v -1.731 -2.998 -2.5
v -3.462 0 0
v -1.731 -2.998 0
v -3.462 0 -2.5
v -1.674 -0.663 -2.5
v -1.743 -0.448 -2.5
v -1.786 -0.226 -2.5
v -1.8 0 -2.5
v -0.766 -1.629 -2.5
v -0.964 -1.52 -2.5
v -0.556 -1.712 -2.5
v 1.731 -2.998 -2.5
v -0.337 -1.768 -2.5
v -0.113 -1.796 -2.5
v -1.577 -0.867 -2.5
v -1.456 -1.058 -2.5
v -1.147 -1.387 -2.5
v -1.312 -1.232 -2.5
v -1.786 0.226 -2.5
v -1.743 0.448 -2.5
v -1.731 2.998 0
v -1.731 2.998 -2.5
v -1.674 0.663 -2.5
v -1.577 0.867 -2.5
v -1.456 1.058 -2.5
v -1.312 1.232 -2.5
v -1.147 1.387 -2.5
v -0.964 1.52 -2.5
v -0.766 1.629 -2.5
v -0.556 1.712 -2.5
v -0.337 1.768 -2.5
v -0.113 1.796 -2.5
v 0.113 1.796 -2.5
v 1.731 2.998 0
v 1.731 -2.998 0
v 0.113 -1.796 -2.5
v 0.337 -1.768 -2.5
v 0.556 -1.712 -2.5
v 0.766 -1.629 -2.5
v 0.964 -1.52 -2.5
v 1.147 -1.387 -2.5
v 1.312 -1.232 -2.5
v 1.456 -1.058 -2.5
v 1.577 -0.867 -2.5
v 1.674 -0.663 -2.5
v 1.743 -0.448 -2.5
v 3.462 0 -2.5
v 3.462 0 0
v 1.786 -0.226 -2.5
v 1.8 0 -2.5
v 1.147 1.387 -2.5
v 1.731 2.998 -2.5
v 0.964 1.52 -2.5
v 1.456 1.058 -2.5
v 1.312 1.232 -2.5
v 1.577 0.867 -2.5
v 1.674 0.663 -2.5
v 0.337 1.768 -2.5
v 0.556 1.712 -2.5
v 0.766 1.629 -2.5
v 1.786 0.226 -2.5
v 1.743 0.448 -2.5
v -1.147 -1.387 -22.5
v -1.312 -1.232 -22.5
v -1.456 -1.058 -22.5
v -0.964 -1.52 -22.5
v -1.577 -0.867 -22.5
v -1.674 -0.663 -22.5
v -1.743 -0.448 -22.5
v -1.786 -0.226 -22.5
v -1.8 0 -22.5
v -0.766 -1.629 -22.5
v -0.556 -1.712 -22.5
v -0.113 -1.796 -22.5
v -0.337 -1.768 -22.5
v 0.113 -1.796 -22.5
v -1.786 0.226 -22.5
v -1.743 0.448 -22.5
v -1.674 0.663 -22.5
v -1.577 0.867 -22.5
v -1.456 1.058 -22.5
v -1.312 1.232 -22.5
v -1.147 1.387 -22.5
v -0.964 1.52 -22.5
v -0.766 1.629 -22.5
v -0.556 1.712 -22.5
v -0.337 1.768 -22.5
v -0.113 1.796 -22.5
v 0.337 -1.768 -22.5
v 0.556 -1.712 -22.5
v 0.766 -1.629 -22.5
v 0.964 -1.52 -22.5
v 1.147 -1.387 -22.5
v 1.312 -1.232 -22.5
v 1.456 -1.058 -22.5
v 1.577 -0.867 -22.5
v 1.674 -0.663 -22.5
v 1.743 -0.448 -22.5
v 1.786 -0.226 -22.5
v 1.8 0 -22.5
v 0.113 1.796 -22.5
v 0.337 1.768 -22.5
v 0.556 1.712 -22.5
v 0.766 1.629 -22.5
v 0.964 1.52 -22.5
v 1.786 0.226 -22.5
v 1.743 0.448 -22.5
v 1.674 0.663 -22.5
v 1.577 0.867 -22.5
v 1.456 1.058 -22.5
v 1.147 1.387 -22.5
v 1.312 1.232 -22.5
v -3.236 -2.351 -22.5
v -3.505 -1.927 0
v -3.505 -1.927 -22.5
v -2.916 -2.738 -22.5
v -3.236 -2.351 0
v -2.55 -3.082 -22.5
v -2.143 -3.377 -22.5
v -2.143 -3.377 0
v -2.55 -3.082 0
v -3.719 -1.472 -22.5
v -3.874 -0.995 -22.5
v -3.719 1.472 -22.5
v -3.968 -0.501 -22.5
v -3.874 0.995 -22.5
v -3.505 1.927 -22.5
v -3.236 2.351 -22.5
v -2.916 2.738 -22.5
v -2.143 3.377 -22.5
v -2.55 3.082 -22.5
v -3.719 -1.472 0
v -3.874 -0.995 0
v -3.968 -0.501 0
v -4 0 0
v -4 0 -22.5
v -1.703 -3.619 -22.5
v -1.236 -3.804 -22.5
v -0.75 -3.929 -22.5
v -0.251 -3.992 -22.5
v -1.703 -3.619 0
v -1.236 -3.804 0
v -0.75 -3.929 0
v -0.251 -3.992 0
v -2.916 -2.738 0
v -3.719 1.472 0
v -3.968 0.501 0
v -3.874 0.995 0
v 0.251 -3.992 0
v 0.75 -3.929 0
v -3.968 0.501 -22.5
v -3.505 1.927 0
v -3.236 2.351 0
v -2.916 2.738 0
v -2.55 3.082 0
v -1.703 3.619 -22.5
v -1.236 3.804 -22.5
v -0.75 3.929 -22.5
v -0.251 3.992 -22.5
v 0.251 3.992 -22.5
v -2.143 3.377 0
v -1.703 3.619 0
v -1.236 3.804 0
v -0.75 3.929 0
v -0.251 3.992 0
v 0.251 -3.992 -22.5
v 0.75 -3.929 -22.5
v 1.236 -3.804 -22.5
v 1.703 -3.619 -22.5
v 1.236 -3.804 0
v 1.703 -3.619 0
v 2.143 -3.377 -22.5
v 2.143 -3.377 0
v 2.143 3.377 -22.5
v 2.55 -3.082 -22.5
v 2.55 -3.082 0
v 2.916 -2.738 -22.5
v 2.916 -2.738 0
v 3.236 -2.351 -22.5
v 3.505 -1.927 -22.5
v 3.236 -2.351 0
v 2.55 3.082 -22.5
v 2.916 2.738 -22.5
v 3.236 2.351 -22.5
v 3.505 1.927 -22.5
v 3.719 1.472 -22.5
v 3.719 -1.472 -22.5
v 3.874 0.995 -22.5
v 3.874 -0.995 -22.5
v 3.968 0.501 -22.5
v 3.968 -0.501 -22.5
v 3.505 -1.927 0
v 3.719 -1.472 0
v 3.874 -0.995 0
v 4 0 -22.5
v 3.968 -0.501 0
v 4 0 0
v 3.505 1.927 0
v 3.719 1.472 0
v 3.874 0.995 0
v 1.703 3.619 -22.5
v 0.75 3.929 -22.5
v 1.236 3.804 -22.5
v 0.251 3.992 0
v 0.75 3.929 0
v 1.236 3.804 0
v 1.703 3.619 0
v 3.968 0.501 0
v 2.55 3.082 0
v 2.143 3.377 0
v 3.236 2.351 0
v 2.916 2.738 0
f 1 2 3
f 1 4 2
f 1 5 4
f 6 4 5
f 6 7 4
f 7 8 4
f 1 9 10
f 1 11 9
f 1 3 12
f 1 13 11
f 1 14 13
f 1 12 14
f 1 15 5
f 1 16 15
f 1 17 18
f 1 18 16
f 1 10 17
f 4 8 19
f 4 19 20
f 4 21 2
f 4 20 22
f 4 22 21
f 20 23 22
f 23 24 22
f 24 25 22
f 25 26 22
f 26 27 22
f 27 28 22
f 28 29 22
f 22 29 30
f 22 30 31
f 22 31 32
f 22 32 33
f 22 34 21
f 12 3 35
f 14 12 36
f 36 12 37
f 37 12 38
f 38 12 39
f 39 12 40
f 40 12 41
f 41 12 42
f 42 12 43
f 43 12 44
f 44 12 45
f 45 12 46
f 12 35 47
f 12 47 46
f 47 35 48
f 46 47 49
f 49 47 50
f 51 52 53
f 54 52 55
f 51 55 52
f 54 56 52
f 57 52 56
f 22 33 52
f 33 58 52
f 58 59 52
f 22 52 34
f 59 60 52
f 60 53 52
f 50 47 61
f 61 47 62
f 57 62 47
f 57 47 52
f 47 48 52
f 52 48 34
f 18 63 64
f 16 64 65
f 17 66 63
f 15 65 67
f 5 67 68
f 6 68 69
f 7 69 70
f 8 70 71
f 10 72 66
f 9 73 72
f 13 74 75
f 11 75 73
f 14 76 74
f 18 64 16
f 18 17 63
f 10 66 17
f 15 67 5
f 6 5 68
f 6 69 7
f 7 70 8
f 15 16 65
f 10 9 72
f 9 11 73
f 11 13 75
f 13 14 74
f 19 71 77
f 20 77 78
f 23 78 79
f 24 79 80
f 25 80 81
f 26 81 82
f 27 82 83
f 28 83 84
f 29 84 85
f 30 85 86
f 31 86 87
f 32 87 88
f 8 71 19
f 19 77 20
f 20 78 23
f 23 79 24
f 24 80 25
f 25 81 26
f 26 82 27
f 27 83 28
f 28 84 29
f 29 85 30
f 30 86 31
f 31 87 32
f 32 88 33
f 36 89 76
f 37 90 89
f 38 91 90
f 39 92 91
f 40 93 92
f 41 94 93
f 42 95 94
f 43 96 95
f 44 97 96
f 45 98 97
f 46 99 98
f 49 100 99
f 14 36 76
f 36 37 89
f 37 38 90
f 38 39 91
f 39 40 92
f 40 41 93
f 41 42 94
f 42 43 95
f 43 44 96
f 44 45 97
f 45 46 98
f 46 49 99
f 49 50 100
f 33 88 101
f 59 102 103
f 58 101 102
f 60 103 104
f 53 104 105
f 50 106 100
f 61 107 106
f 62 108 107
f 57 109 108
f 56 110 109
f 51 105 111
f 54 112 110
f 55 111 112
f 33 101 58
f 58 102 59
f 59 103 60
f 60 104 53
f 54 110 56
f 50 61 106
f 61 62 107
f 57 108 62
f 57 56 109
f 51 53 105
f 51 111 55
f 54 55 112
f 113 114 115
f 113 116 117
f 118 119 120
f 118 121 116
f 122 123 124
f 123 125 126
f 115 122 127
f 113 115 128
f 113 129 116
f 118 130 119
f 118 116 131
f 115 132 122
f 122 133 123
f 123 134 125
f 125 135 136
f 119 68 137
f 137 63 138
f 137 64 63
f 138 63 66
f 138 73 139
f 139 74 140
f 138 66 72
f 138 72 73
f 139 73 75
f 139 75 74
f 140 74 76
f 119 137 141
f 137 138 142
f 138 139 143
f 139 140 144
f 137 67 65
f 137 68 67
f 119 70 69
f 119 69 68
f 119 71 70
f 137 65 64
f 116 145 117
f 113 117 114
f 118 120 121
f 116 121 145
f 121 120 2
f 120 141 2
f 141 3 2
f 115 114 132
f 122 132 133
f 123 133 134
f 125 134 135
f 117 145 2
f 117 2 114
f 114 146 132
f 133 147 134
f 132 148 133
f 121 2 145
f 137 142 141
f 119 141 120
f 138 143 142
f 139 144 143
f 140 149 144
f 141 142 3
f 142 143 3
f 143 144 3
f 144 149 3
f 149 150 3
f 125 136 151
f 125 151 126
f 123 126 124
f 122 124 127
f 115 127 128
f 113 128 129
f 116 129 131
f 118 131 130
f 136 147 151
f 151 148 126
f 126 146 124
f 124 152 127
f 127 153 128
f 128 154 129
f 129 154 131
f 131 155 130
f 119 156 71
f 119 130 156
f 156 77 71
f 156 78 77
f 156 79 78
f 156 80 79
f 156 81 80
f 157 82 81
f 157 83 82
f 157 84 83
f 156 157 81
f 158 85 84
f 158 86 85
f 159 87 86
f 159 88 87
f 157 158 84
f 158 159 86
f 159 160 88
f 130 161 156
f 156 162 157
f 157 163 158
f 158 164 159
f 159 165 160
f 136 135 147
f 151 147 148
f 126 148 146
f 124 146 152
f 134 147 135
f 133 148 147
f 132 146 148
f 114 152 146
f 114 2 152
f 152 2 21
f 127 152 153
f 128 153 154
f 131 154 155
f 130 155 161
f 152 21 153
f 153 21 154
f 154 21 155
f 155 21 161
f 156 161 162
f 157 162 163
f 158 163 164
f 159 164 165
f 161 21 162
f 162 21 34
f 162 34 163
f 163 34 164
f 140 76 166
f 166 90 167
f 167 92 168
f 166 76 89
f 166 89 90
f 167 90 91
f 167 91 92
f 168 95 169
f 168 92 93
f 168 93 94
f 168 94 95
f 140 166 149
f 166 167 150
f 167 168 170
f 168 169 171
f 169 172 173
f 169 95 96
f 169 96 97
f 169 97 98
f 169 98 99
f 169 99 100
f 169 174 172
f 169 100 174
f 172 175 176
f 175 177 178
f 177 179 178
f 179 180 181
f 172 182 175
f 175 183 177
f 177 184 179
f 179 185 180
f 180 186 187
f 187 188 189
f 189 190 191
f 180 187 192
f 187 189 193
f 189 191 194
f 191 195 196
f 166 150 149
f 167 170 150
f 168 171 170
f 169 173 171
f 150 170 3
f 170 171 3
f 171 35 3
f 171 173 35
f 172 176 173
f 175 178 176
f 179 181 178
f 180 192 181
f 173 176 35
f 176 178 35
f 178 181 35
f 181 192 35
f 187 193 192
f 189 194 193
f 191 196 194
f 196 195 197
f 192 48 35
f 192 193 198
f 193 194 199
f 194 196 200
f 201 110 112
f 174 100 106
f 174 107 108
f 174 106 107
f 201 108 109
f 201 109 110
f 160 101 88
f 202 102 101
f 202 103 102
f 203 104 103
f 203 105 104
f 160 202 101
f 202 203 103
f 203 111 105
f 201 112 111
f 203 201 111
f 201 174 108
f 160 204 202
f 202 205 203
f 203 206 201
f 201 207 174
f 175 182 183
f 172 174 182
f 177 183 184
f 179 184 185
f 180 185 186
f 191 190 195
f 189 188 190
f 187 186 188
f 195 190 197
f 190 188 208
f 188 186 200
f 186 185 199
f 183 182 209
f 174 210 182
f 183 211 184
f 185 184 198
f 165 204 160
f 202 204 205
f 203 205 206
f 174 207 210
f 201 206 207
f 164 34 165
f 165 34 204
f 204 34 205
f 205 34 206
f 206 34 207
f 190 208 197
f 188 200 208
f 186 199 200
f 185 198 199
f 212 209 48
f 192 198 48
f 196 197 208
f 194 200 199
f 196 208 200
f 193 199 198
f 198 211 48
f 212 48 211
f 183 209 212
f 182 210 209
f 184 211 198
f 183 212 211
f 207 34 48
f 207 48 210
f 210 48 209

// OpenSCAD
$fn = 50;

difference() {
	union() {
		translate(v = [0, 0, -22.5]) {
			cylinder(h = 22.5, r = 4.0);
		}
	}
	union() {
		translate(v = [0, 0, 0]) {
			rotate(a = [0, 0, 0]) {
				difference() {
					union() {
						translate(v = [0, 0, -2.5]) {
							linear_extrude(height = 2.5) {
								polygon(points = [[3.4619999999999997, 0.0], [1.7310000000000003, 2.9981799479017264], [-1.7309999999999992, 2.9981799479017264], [-3.4619999999999997, 4.2397272186481365e-16], [-1.7310000000000014, -2.998179947901726], [1.7309999999999977, -2.9981799479017277]]);
							}
						}
					}
					union();
				}
			}
		}
		#translate(v = [0, 0, -100.0]) {
			cylinder(h = 200, r = 1.8);
		}
	}
}
